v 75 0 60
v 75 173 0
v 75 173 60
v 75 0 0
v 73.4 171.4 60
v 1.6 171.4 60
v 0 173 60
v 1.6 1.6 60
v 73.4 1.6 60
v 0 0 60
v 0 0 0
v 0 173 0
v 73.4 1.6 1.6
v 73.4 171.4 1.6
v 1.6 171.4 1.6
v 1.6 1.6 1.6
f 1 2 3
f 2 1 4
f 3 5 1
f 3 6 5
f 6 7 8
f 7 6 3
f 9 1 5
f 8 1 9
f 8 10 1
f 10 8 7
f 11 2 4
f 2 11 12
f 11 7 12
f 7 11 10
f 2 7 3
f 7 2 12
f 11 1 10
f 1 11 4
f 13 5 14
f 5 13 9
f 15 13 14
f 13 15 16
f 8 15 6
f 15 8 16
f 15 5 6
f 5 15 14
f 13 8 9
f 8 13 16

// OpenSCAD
include <boardgame_insert_toolkit_lib.2.scad>;

// determines whether lids are output.
g_b_print_lid = true;

// determines whether boxes are output.
g_b_print_box = true;

// Focus on one box
g_isolated_print_box = "";

// Used to visualize how all of the boxes fit together.
g_b_visualization = false;

// this is the outer wall thickness.
// Default = 1.5mm
g_wall_thickness = 1.6;

// The tolerance value is extra space put between planes of the lid and box
// that fit together. Increase the tolerance to loosen the fit and decrease it
// to tighten it.
//
// Note that the tolerance is applied exclusively to the lid.
// So if the lid is too tight or too loose, change this value ( up for looser
// fit, down for tighter fit ) and you only need to reprint the lid.
//
// The exception is the stackable box, where the bottom of the box is the lid
// of the box below, in which case the tolerance also affects that box bottom.
//
g_tolerance = 0.15;

// This adjusts the position of the lid detents downward.
// The larger the value, the bigger the gap between the lid and the box.
g_tolerance_detents_pos = 0.1;

data = [
  [
    "simple box",
    [
      [BOX_SIZE_XYZ, [75, 173, 60]],
      [BOX_NO_LID_B, t],
      [
        BOX_COMPONENT,
        [
          [
            CMP_COMPARTMENT_SIZE_XYZ,
            [71.8, 169.8, 58.4]
          ]
        ]
      ]
    ]
  ]
];

MakeAll();
